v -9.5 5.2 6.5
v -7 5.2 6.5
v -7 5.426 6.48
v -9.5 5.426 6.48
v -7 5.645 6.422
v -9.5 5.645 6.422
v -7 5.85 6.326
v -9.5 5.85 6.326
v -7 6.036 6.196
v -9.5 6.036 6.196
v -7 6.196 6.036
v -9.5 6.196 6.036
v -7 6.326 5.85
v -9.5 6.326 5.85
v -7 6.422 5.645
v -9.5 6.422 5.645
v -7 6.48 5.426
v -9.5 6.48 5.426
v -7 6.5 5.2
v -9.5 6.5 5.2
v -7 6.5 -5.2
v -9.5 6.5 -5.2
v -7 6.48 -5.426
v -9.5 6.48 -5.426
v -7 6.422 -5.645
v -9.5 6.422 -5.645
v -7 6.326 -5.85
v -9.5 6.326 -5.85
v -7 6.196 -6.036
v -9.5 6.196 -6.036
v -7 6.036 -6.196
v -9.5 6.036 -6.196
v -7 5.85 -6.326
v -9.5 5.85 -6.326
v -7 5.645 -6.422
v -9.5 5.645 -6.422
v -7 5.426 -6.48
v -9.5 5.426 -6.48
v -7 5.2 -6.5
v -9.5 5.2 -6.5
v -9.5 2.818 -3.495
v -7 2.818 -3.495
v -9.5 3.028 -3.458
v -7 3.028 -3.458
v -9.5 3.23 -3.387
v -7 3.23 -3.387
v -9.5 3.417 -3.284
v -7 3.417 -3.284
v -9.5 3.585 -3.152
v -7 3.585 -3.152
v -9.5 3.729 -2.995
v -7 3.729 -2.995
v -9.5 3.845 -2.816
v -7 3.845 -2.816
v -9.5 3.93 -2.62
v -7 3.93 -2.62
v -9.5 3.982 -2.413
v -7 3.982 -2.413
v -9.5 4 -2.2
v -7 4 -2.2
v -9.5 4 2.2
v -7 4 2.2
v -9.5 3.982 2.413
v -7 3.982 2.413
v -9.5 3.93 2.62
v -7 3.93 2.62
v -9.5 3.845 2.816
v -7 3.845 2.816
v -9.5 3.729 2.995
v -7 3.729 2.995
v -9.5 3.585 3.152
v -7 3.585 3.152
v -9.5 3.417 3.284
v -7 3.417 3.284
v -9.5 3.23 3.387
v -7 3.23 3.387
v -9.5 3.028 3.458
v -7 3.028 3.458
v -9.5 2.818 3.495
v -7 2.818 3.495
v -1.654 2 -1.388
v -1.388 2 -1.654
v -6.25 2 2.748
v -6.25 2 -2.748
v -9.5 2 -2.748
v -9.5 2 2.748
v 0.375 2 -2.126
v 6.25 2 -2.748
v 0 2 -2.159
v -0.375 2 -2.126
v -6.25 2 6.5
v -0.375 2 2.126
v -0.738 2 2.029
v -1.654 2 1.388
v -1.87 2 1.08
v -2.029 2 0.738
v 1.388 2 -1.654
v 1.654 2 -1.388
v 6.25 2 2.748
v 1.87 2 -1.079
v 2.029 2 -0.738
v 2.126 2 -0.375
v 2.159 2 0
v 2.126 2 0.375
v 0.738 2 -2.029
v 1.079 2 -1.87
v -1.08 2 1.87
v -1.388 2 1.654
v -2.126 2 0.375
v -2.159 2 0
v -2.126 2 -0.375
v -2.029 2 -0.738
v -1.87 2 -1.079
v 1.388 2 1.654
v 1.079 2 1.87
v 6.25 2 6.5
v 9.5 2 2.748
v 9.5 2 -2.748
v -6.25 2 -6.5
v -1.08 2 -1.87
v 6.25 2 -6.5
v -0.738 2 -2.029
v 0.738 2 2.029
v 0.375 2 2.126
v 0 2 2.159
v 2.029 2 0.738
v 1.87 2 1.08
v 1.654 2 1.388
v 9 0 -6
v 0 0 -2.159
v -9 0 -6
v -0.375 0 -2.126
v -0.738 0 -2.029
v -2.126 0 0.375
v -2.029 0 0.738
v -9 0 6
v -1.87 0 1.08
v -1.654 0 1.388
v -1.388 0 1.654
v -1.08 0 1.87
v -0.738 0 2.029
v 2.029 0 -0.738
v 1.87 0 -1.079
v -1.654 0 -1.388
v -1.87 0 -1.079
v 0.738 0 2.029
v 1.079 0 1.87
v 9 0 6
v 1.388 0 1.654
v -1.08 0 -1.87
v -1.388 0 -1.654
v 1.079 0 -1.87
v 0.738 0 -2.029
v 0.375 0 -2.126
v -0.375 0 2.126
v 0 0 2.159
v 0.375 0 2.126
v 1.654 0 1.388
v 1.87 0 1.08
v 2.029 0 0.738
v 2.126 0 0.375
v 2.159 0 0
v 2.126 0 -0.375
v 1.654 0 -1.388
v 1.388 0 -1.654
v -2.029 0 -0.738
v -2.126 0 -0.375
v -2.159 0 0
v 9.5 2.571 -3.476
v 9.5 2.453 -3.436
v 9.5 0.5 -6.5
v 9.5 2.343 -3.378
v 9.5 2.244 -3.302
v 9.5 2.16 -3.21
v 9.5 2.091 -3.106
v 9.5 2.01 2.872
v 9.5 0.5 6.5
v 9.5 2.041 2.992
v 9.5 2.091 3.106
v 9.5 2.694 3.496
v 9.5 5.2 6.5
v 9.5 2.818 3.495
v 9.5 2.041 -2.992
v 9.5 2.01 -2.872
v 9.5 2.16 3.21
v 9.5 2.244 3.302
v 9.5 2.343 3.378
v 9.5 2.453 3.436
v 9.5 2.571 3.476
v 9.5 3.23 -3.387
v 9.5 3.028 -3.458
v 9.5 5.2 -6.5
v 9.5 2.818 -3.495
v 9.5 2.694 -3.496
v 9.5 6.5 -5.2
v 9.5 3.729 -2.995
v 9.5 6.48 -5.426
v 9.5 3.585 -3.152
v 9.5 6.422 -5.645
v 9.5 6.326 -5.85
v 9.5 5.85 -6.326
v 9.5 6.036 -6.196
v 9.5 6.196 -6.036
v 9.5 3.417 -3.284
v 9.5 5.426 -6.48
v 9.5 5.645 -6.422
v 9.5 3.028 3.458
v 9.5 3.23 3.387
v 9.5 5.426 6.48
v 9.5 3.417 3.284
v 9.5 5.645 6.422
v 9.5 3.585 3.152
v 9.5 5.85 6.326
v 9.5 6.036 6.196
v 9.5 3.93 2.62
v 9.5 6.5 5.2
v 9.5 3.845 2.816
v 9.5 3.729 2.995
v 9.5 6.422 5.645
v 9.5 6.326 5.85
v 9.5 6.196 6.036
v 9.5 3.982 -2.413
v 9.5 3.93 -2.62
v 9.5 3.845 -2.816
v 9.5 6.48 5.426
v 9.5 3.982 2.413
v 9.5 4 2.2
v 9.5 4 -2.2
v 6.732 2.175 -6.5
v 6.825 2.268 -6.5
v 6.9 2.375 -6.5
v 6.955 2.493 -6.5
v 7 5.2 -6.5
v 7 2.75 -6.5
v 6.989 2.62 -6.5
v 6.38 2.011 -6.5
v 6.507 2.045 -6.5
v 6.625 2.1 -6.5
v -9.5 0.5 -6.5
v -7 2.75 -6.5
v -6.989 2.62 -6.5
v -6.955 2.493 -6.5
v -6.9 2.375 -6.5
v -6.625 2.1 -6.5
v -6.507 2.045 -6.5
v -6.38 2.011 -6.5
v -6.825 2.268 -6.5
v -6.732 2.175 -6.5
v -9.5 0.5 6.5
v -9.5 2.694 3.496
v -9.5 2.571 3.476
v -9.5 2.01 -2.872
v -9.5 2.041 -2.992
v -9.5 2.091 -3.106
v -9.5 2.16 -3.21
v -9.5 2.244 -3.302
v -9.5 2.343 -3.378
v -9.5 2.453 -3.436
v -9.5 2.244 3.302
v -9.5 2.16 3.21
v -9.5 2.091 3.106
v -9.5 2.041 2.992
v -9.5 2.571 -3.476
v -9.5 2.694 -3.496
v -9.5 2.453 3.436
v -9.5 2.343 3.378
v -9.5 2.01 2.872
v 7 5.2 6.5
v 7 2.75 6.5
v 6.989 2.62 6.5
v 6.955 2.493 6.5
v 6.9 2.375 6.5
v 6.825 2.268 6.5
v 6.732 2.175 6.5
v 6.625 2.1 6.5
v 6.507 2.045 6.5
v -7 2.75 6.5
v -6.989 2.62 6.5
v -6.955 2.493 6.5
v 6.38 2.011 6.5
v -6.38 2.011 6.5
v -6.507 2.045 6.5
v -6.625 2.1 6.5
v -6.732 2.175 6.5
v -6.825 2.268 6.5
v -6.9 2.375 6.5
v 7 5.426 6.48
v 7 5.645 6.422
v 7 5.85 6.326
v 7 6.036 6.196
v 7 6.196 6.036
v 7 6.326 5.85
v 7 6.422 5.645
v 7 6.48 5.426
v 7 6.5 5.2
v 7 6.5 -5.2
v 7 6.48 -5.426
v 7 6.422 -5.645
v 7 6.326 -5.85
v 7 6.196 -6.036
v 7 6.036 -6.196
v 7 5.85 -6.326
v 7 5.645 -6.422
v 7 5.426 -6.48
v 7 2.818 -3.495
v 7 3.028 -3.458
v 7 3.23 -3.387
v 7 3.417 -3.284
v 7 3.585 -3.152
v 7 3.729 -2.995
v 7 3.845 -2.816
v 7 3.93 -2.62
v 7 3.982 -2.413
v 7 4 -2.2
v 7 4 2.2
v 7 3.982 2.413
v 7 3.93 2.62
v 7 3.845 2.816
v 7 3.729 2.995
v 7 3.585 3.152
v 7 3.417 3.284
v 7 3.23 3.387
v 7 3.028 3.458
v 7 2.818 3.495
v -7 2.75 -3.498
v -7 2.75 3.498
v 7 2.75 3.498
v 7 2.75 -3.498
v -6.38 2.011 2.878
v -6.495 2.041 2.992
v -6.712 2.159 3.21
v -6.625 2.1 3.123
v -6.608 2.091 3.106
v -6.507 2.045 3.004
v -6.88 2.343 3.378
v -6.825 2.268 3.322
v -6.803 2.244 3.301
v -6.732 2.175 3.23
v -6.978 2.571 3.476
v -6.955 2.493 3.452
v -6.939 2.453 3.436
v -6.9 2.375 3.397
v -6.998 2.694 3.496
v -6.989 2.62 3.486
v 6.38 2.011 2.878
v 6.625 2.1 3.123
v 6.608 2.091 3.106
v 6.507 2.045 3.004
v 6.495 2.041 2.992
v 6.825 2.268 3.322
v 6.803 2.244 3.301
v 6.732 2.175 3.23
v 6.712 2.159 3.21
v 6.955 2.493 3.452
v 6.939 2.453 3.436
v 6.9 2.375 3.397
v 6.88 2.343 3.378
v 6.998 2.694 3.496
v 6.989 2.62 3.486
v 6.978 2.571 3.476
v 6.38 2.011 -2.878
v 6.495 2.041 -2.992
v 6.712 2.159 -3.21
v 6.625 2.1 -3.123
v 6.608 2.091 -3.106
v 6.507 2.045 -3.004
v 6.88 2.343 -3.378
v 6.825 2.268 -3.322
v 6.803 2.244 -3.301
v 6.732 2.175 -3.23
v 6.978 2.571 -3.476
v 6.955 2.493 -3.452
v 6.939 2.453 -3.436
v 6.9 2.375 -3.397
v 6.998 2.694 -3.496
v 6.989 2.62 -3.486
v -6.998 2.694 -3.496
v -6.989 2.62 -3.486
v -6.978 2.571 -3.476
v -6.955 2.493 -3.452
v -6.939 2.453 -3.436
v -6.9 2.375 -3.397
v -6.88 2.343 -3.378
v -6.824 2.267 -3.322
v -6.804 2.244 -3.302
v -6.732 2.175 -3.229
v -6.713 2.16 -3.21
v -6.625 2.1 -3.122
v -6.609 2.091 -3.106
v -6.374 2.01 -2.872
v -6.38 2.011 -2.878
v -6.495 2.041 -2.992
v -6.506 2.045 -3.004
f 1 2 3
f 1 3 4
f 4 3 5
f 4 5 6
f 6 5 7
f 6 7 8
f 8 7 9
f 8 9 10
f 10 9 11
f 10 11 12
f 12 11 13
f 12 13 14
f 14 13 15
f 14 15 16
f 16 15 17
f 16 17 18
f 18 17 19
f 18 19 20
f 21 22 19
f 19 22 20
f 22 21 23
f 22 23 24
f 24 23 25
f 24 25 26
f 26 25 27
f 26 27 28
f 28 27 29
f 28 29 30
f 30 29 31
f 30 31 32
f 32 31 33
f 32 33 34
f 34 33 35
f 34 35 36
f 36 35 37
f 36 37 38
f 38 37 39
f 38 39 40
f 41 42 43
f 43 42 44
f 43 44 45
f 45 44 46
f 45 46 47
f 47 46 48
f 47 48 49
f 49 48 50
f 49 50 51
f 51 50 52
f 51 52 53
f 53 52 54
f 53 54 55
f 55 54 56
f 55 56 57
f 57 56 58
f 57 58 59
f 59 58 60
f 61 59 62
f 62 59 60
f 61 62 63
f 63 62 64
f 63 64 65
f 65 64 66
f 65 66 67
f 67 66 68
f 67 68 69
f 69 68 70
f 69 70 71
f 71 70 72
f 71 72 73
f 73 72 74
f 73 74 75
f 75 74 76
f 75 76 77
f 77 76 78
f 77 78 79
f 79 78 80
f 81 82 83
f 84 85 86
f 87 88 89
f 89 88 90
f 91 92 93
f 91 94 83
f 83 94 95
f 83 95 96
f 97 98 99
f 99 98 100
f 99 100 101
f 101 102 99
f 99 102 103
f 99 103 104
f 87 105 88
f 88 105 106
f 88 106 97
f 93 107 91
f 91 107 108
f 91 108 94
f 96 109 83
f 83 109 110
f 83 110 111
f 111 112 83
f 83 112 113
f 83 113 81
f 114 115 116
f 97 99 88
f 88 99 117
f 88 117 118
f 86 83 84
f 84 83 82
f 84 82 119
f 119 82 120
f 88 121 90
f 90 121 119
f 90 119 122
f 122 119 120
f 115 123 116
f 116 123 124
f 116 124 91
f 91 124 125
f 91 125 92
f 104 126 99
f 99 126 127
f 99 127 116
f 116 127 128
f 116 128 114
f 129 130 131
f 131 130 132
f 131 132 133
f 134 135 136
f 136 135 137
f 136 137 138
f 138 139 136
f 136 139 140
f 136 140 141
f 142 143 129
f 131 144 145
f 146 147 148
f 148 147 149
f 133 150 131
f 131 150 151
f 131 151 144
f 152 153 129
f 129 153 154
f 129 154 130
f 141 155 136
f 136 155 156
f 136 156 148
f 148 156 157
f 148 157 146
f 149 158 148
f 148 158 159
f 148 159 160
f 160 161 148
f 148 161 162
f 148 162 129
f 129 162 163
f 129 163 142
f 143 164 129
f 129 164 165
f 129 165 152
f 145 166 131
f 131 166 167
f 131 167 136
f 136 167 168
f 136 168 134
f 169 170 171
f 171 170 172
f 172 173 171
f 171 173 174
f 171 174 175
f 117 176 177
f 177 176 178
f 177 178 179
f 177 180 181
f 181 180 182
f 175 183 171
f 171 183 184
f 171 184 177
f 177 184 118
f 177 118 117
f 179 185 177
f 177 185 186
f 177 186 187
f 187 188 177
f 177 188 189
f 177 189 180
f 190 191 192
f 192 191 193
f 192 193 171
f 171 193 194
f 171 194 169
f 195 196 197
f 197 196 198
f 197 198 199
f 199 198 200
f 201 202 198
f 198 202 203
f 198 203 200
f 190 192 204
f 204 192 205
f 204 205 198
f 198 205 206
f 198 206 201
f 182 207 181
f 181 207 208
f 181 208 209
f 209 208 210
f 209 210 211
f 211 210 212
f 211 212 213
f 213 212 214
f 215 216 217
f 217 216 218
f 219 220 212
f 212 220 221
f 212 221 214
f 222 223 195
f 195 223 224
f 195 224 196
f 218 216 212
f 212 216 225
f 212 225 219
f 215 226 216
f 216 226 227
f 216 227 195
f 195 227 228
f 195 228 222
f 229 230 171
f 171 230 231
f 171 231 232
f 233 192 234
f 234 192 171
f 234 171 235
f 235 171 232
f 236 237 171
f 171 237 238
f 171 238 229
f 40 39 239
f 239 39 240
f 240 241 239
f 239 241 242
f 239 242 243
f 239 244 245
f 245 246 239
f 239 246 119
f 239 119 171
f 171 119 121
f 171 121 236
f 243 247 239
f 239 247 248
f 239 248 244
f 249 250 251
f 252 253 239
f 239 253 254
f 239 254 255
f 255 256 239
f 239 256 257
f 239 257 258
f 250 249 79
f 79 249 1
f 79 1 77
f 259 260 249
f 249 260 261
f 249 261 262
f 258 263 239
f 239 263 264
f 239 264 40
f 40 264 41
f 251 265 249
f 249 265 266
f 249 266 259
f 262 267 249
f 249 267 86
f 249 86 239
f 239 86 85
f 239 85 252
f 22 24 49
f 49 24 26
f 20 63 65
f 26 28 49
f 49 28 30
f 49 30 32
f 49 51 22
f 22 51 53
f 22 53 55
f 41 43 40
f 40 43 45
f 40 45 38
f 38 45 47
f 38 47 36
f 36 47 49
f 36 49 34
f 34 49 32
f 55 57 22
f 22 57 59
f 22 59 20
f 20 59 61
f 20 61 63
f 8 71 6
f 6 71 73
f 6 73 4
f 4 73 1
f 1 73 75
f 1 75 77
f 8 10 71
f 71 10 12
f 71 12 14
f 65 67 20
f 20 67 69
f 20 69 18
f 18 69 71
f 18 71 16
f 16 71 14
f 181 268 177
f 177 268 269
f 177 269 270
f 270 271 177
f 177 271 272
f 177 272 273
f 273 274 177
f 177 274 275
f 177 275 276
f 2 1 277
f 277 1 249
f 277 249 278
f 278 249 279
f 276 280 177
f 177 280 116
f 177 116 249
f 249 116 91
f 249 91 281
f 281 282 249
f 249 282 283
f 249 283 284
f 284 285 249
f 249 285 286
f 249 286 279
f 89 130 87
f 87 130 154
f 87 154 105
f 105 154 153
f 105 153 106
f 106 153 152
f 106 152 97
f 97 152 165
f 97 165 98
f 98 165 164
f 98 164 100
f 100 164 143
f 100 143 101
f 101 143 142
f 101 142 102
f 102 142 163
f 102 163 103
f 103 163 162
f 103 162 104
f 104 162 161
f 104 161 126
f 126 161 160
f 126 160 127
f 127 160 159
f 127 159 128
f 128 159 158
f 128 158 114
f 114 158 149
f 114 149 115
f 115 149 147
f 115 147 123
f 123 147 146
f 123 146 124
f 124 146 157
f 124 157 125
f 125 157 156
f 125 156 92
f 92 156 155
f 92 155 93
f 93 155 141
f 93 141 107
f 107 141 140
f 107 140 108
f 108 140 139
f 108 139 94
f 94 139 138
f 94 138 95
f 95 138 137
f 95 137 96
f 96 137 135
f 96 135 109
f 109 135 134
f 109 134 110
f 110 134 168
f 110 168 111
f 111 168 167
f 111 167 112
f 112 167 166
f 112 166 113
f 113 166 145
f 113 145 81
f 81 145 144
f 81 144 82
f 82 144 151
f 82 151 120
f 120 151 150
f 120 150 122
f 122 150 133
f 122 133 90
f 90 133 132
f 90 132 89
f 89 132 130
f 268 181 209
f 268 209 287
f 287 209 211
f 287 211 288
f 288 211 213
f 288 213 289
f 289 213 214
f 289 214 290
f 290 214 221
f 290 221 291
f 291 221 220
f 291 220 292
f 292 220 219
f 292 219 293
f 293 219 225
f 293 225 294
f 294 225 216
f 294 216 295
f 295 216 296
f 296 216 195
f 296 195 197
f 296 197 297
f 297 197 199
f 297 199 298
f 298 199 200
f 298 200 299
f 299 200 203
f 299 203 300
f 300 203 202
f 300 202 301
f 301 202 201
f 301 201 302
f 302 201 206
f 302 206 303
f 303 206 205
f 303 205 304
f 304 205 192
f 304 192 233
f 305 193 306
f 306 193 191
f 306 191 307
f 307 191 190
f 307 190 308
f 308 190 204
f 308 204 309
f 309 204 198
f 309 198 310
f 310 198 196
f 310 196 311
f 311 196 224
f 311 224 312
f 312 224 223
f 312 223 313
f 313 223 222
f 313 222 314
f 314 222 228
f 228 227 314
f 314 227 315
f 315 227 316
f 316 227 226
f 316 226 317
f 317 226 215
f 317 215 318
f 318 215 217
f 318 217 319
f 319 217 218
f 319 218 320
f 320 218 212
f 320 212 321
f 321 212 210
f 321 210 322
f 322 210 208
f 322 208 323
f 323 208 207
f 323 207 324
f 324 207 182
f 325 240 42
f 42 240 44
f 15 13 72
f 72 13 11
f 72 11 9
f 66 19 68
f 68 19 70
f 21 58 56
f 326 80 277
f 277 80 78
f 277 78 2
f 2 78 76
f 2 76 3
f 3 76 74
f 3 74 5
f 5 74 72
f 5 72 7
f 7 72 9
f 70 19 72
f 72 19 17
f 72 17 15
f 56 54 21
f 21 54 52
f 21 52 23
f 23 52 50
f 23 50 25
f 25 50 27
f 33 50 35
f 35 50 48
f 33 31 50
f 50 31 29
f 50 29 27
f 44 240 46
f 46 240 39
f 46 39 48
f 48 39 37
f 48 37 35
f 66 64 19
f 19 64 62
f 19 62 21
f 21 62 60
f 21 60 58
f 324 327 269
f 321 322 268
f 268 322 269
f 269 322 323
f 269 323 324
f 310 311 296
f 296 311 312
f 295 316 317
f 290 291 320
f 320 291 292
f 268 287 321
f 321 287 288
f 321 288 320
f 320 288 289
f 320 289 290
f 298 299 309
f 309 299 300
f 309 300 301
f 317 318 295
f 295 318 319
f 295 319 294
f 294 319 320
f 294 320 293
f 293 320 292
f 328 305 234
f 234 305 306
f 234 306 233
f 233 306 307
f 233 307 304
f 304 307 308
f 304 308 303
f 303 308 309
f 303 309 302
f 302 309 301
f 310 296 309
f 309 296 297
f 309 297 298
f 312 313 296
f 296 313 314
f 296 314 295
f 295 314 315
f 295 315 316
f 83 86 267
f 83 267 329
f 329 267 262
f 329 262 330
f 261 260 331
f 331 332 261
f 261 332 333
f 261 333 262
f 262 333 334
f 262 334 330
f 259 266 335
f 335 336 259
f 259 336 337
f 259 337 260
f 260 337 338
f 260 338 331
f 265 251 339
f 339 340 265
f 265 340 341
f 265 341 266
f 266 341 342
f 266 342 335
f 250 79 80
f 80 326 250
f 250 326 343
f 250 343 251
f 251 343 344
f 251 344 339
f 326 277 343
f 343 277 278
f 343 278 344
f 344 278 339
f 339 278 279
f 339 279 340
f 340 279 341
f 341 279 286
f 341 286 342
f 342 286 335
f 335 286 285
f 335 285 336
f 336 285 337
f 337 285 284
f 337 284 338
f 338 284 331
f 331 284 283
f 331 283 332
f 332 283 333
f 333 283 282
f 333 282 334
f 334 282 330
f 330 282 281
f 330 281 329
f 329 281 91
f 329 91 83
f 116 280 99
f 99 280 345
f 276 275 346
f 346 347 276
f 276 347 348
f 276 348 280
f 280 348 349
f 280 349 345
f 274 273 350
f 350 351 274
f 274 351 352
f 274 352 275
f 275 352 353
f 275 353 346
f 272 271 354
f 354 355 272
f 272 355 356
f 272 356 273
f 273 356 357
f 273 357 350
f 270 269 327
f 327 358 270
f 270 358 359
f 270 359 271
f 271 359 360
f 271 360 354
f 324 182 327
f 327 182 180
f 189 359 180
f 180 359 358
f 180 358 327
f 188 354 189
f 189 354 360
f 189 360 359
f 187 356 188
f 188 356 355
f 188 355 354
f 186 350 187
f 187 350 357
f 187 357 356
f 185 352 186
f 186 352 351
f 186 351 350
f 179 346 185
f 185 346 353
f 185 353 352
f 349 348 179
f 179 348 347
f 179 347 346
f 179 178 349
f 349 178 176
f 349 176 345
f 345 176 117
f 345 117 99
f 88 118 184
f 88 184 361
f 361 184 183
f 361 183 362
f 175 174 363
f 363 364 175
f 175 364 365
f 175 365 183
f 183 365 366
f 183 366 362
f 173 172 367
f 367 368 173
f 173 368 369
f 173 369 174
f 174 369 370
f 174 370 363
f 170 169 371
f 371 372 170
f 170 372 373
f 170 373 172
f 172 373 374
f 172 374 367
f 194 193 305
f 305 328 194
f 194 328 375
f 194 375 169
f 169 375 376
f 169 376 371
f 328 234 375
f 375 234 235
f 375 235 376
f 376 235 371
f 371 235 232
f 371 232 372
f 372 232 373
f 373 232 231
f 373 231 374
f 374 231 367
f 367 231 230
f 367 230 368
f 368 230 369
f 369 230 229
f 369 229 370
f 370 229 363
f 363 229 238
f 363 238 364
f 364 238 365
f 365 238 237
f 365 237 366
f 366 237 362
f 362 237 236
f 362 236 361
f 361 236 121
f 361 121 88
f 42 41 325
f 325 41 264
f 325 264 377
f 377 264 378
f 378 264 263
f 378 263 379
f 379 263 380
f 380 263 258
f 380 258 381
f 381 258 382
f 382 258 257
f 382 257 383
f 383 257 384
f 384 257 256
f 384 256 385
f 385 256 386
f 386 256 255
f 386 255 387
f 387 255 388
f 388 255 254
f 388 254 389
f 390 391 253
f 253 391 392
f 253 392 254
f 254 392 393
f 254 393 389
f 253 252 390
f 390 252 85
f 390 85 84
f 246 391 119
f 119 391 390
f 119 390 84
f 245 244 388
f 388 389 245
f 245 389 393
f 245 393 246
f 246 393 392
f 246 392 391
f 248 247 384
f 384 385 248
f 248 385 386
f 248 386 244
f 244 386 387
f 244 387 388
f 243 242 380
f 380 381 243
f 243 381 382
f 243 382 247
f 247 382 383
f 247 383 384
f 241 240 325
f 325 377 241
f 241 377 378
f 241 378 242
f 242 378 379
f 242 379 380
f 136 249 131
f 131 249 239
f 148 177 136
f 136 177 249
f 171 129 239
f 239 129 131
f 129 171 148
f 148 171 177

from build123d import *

# Parameters (mm, degrees)
SKETCH1_W               = 19
SKETCH1_H               = 13
SKETCH1_R               = 2.159
BOSS_EXTRUDE1_DEPTH     = 2
BOSS_EXTRUDE2_DEPTH     = 19
CUT_EXTRUDE1_DEPTH      = 18.363755354
CUT_EXTRUDE1_DEPTH_BACK = 18.363755354
SKETCH4_W               = 14
SKETCH4_H               = 5
FILLET1_R               = 0.75
CHAMFER1_SIZE           = 0.5


with BuildPart() as part:
    # Sketch1 → Boss-Extrude1 (new body)
    with BuildSketch(Plane(origin=(0, 0, 0), x_dir=(1, 0, 0), z_dir=(0, 1, 0))):
        Rectangle(SKETCH1_W, SKETCH1_H)
        with Locations(Location((0, 0, 0), (0, 0, 270))):
            Circle(SKETCH1_R, mode=Mode.SUBTRACT)
    extrude(amount=BOSS_EXTRUDE1_DEPTH)

    # Sketch2 → Boss-Extrude2 (add)
    with BuildSketch(Plane(origin=(9.5, 0, 0), x_dir=(0, 0, -1), z_dir=(1, 0, 0))):
        with BuildLine():
            Line((-6.5, 5.2), (-6.5, 2))
            Line((-6.5, 2), (-3.5, 2))
            Line((-3.5, 2), (-3.5, 2.7))
            ThreePointArc((-3.5, 2.7), (-3.119238816, 3.619238816), (-2.2, 4))
            Line((-2.2, 4), (2.2, 4))
            ThreePointArc((2.2, 4), (3.119238816, 3.619238816), (3.5, 2.7))
            Line((3.5, 2.7), (3.5, 2))
            Line((3.5, 2), (6.5, 2))
            Line((6.5, 2), (6.5, 5.2))
            ThreePointArc((6.5, 5.2), (6.119238816, 6.119238816), (5.2, 6.5))
            Line((5.2, 6.5), (-5.2, 6.5))
            ThreePointArc((-5.2, 6.5), (-6.119238816, 6.119238816), (-6.5, 5.2))
        make_face()
    extrude(amount=-BOSS_EXTRUDE2_DEPTH)

    # Sketch4 → Cut-Extrude1 (cut, two sides: drawn at the far end of the back side and taken through both)
    with BuildSketch(Plane.XY.offset(6.5).offset(-CUT_EXTRUDE1_DEPTH_BACK)):
        with Locations((0, 4.5)):
            Rectangle(SKETCH4_W, SKETCH4_H)
    extrude(amount=CUT_EXTRUDE1_DEPTH + CUT_EXTRUDE1_DEPTH_BACK, mode=Mode.SUBTRACT)

    # Fillet1
    # the kernel refuses this fillet: 0.75 mm, written as the material it adds along each edge
    with BuildSketch(Plane(origin=(-7, 2, 3.5), x_dir=(1, 0, 0), z_dir=(0, 0, 1)), Plane(origin=(-7, 2, -6.5), x_dir=(1, 0, 0), z_dir=(0, 0, 1))) as fillet1_piece_1:
        with BuildLine():
            CenterArc((FILLET1_R, FILLET1_R), FILLET1_R, 180, 90)
            Line((0, FILLET1_R), (-FILLET1_R * 0.02, FILLET1_R))
            Line((-FILLET1_R * 0.02, FILLET1_R), (-FILLET1_R * 0.02, -FILLET1_R * 0.02))
            Line((-FILLET1_R * 0.02, -FILLET1_R * 0.02), (FILLET1_R, -FILLET1_R * 0.02))
            Line((FILLET1_R, -FILLET1_R * 0.02), (FILLET1_R, 0))
        make_face()
    extrude(amount=3)
    with BuildSketch(Plane(origin=(-7, 2, 3.5), x_dir=(0, 0, -1), z_dir=(-1, 0, 0)), Plane(origin=(9.5, 2, 3.5), x_dir=(0, 0, -1), z_dir=(-1, 0, 0))) as fillet1_piece_2:
        with BuildLine():
            CenterArc((0.752277442, -0.75), FILLET1_R, 90, 95.21590857)
            Line((0.005383046, -0.818181818), (-0.069306394, -0.825))
            ThreePointArc((-0.069306394, -0.825), (-0.075, -0.7), (-0.075, 0))
            Line((-0.075, 0), (0, 0.075))
            Line((0, 0.075), (0.752277442, 0.075))
            Line((0.752277442, 0.075), (0.752277442, 0))
        make_face()
    extrude(amount=2.5)
    with BuildSketch(Plane(origin=(7, 2, 6.5), x_dir=(0, 1, 0), z_dir=(0, 0, -1)), Plane(origin=(7, 2, -3.5), x_dir=(0, 1, 0), z_dir=(0, 0, -1))) as fillet1_piece_3:
        with BuildLine():
            CenterArc((FILLET1_R, -FILLET1_R), FILLET1_R, 90, 90)
            Line((0, -FILLET1_R), (-FILLET1_R * 0.02, -FILLET1_R))
            Line((-FILLET1_R * 0.02, -FILLET1_R), (-FILLET1_R * 0.02, FILLET1_R * 0.02))
            Line((-FILLET1_R * 0.02, FILLET1_R * 0.02), (FILLET1_R, FILLET1_R * 0.02))
            Line((FILLET1_R, FILLET1_R * 0.02), (FILLET1_R, 0))
        make_face()
    extrude(amount=3)
    with BuildSketch(Plane(origin=(9.5, 2, -3.5), x_dir=(0, 0, 1), z_dir=(-1, 0, 0)), Plane(origin=(-7, 2, -3.5), x_dir=(0, 0, 1), z_dir=(-1, 0, 0))) as fillet1_piece_4:
        with BuildLine():
            CenterArc((0.752277442, 0.75), FILLET1_R, 174.78409143, 95.21590857)
            Line((0.005383046, 0.818181818), (-0.069306394, 0.825))
            ThreePointArc((-0.069306394, 0.825), (-0.075, 0.7), (-0.075, 0))
            Line((-0.075, 0), (0, -0.075))
            Line((0, -0.075), (0.752277442, -0.075))
            Line((0.752277442, -0.075), (0.752277442, 0))
        make_face()
    extrude(amount=2.5)
    with BuildSketch(Plane(origin=(-7, 2, 1.625), x_dir=(1, 0, 0), z_dir=(0, 0, 1))) as fillet1_piece_5a_section:
        with BuildLine():
            CenterArc((FILLET1_R, FILLET1_R), FILLET1_R, 180, 90)
            Line((0, FILLET1_R), (-FILLET1_R * 0.02, FILLET1_R))
            Line((-FILLET1_R * 0.02, FILLET1_R), (-FILLET1_R * 0.02, -FILLET1_R * 0.02))
            Line((-FILLET1_R * 0.02, -FILLET1_R * 0.02), (FILLET1_R, -FILLET1_R * 0.02))
            Line((FILLET1_R, -FILLET1_R * 0.02), (FILLET1_R, 0))
        make_face()
    fillet1_piece_5a = extrude(amount=4.875, mode=Mode.PRIVATE)
    fillet1_piece_5a = split(fillet1_piece_5a, bisect_by=Plane(origin=(-6.830203664, 2.169796336, 3.5), z_dir=(0, 0, -1)), keep=Keep.TOP, mode=Mode.PRIVATE)
    with BuildSketch(Plane(origin=(-4.954501184, 2, 3.5), x_dir=(0, 0, -1), z_dir=(-1, 0, 0))) as fillet1_piece_5b_section:
        with BuildLine():
            CenterArc((0.752277442, -0.75), FILLET1_R, 90, 95.21590857)
            Line((0.005383046, -0.818181818), (-0.069306394, -0.825))
            ThreePointArc((-0.069306394, -0.825), (-0.075, -0.7), (-0.075, 0))
            Line((-0.075, 0), (0, 0.075))
            Line((0, 0.075), (0.752277442, 0.075))
            Line((0.752277442, 0.075), (0.752277442, 0))
        make_face()
    fillet1_piece_5b = extrude(amount=4.545498816, mode=Mode.PRIVATE)
    fillet1_piece_5b = split(fillet1_piece_5b, bisect_by=Plane(origin=(-7, 2.182819777, 3.341220423), z_dir=(1, 0, 0)), keep=Keep.TOP, mode=Mode.PRIVATE)
    fillet1_piece_5 = fillet1_piece_5a & fillet1_piece_5b
    add(fillet1_piece_5)
    with BuildSketch(Plane(origin=(7, 2, 6.5), x_dir=(0, 1, 0), z_dir=(0, 0, -1))) as fillet1_piece_6a_section:
        with BuildLine():
            CenterArc((FILLET1_R, -FILLET1_R), FILLET1_R, 90, 90)
            Line((0, -FILLET1_R), (-FILLET1_R * 0.02, -FILLET1_R))
            Line((-FILLET1_R * 0.02, -FILLET1_R), (-FILLET1_R * 0.02, FILLET1_R * 0.02))
            Line((-FILLET1_R * 0.02, FILLET1_R * 0.02), (FILLET1_R, FILLET1_R * 0.02))
            Line((FILLET1_R, FILLET1_R * 0.02), (FILLET1_R, 0))
        make_face()
    fillet1_piece_6a = extrude(amount=4.875, mode=Mode.PRIVATE)
    fillet1_piece_6a = split(fillet1_piece_6a, bisect_by=Plane(origin=(6.830203664, 2.169796336, 3.5), z_dir=(0, 0, -1)), keep=Keep.TOP, mode=Mode.PRIVATE)
    with BuildSketch(Plane(origin=(9.5, 2, 3.5), x_dir=(0, 0, -1), z_dir=(-1, 0, 0))) as fillet1_piece_6b_section:
        with BuildLine():
            CenterArc((0.752277442, -0.75), FILLET1_R, 90, 95.21590857)
            Line((0.005383046, -0.818181818), (-0.069306394, -0.825))
            ThreePointArc((-0.069306394, -0.825), (-0.075, -0.7), (-0.075, 0))
            Line((-0.075, 0), (0, 0.075))
            Line((0, 0.075), (0.752277442, 0.075))
            Line((0.752277442, 0.075), (0.752277442, 0))
        make_face()
    fillet1_piece_6b = extrude(amount=4.545498816, mode=Mode.PRIVATE)
    fillet1_piece_6b = split(fillet1_piece_6b, bisect_by=Plane(origin=(7, 2.182819777, 3.341220423), z_dir=(-1, 0, 0)), keep=Keep.TOP, mode=Mode.PRIVATE)
    fillet1_piece_6 = fillet1_piece_6a & fillet1_piece_6b
    add(fillet1_piece_6)
    with BuildSketch(Plane(origin=(7, 2, -1.625), x_dir=(0, 1, 0), z_dir=(0, 0, -1))) as fillet1_piece_7a_section:
        with BuildLine():
            CenterArc((FILLET1_R, -FILLET1_R), FILLET1_R, 90, 90)
            Line((0, -FILLET1_R), (-FILLET1_R * 0.02, -FILLET1_R))
            Line((-FILLET1_R * 0.02, -FILLET1_R), (-FILLET1_R * 0.02, FILLET1_R * 0.02))
            Line((-FILLET1_R * 0.02, FILLET1_R * 0.02), (FILLET1_R, FILLET1_R * 0.02))
            Line((FILLET1_R, FILLET1_R * 0.02), (FILLET1_R, 0))
        make_face()
    fillet1_piece_7a = extrude(amount=4.875, mode=Mode.PRIVATE)
    fillet1_piece_7a = split(fillet1_piece_7a, bisect_by=Plane(origin=(6.830203664, 2.169796336, -3.5), z_dir=(0, 0, 1)), keep=Keep.TOP, mode=Mode.PRIVATE)
    with BuildSketch(Plane(origin=(9.5, 2, -3.5), x_dir=(0, 0, 1), z_dir=(-1, 0, 0))) as fillet1_piece_7b_section:
        with BuildLine():
            CenterArc((0.752277442, 0.75), FILLET1_R, 174.78409143, 95.21590857)
            Line((0.005383046, 0.818181818), (-0.069306394, 0.825))
            ThreePointArc((-0.069306394, 0.825), (-0.075, 0.7), (-0.075, 0))
            Line((-0.075, 0), (0, -0.075))
            Line((0, -0.075), (0.752277442, -0.075))
            Line((0.752277442, -0.075), (0.752277442, 0))
        make_face()
    fillet1_piece_7b = extrude(amount=4.545498816, mode=Mode.PRIVATE)
    fillet1_piece_7b = split(fillet1_piece_7b, bisect_by=Plane(origin=(7, 2.182819777, -3.341220423), z_dir=(-1, 0, 0)), keep=Keep.TOP, mode=Mode.PRIVATE)
    fillet1_piece_7 = fillet1_piece_7a & fillet1_piece_7b
    add(fillet1_piece_7)
    with BuildSketch(Plane(origin=(-4.954501184, 2, -3.5), x_dir=(0, 0, 1), z_dir=(-1, 0, 0))) as fillet1_piece_8a_section:
        with BuildLine():
            CenterArc((0.752277442, 0.75), FILLET1_R, 174.78409143, 95.21590857)
            Line((0.005383046, 0.818181818), (-0.069306394, 0.825))
            ThreePointArc((-0.069306394, 0.825), (-0.075, 0.7), (-0.075, 0))
            Line((-0.075, 0), (0, -0.075))
            Line((0, -0.075), (0.752277442, -0.075))
            Line((0.752277442, -0.075), (0.752277442, 0))
        make_face()
    fillet1_piece_8a = extrude(amount=4.545498816, mode=Mode.PRIVATE)
    fillet1_piece_8a = split(fillet1_piece_8a, bisect_by=Plane(origin=(-7, 2.182819777, -3.341220423), z_dir=(1, 0, 0)), keep=Keep.TOP, mode=Mode.PRIVATE)
    with BuildSketch(Plane(origin=(-7, 2, -6.5), x_dir=(1, 0, 0), z_dir=(0, 0, 1))) as fillet1_piece_8b_section:
        with BuildLine():
            CenterArc((FILLET1_R, FILLET1_R), FILLET1_R, 180, 90)
            Line((0, FILLET1_R), (-FILLET1_R * 0.02, FILLET1_R))
            Line((-FILLET1_R * 0.02, FILLET1_R), (-FILLET1_R * 0.02, -FILLET1_R * 0.02))
            Line((-FILLET1_R * 0.02, -FILLET1_R * 0.02), (FILLET1_R, -FILLET1_R * 0.02))
            Line((FILLET1_R, -FILLET1_R * 0.02), (FILLET1_R, 0))
        make_face()
    fillet1_piece_8b = extrude(amount=4.875, mode=Mode.PRIVATE)
    fillet1_piece_8b = split(fillet1_piece_8b, bisect_by=Plane(origin=(-6.830203664, 2.169796336, -3.5), z_dir=(0, 0, 1)), keep=Keep.TOP, mode=Mode.PRIVATE)
    fillet1_piece_8 = fillet1_piece_8a & fillet1_piece_8b
    add(fillet1_piece_8)

    # Chamfer1
    chamfer1_edges = [part.edges().sort_by_distance(p)[0] for p in [
        (0, 0, 6.5),
        (-9.5, 0, 0),
        (0, 0, -6.5),
        (9.5, 0, 0),
    ]]
    chamfer(chamfer1_edges, length=CHAMFER1_SIZE)


solid = part.part
